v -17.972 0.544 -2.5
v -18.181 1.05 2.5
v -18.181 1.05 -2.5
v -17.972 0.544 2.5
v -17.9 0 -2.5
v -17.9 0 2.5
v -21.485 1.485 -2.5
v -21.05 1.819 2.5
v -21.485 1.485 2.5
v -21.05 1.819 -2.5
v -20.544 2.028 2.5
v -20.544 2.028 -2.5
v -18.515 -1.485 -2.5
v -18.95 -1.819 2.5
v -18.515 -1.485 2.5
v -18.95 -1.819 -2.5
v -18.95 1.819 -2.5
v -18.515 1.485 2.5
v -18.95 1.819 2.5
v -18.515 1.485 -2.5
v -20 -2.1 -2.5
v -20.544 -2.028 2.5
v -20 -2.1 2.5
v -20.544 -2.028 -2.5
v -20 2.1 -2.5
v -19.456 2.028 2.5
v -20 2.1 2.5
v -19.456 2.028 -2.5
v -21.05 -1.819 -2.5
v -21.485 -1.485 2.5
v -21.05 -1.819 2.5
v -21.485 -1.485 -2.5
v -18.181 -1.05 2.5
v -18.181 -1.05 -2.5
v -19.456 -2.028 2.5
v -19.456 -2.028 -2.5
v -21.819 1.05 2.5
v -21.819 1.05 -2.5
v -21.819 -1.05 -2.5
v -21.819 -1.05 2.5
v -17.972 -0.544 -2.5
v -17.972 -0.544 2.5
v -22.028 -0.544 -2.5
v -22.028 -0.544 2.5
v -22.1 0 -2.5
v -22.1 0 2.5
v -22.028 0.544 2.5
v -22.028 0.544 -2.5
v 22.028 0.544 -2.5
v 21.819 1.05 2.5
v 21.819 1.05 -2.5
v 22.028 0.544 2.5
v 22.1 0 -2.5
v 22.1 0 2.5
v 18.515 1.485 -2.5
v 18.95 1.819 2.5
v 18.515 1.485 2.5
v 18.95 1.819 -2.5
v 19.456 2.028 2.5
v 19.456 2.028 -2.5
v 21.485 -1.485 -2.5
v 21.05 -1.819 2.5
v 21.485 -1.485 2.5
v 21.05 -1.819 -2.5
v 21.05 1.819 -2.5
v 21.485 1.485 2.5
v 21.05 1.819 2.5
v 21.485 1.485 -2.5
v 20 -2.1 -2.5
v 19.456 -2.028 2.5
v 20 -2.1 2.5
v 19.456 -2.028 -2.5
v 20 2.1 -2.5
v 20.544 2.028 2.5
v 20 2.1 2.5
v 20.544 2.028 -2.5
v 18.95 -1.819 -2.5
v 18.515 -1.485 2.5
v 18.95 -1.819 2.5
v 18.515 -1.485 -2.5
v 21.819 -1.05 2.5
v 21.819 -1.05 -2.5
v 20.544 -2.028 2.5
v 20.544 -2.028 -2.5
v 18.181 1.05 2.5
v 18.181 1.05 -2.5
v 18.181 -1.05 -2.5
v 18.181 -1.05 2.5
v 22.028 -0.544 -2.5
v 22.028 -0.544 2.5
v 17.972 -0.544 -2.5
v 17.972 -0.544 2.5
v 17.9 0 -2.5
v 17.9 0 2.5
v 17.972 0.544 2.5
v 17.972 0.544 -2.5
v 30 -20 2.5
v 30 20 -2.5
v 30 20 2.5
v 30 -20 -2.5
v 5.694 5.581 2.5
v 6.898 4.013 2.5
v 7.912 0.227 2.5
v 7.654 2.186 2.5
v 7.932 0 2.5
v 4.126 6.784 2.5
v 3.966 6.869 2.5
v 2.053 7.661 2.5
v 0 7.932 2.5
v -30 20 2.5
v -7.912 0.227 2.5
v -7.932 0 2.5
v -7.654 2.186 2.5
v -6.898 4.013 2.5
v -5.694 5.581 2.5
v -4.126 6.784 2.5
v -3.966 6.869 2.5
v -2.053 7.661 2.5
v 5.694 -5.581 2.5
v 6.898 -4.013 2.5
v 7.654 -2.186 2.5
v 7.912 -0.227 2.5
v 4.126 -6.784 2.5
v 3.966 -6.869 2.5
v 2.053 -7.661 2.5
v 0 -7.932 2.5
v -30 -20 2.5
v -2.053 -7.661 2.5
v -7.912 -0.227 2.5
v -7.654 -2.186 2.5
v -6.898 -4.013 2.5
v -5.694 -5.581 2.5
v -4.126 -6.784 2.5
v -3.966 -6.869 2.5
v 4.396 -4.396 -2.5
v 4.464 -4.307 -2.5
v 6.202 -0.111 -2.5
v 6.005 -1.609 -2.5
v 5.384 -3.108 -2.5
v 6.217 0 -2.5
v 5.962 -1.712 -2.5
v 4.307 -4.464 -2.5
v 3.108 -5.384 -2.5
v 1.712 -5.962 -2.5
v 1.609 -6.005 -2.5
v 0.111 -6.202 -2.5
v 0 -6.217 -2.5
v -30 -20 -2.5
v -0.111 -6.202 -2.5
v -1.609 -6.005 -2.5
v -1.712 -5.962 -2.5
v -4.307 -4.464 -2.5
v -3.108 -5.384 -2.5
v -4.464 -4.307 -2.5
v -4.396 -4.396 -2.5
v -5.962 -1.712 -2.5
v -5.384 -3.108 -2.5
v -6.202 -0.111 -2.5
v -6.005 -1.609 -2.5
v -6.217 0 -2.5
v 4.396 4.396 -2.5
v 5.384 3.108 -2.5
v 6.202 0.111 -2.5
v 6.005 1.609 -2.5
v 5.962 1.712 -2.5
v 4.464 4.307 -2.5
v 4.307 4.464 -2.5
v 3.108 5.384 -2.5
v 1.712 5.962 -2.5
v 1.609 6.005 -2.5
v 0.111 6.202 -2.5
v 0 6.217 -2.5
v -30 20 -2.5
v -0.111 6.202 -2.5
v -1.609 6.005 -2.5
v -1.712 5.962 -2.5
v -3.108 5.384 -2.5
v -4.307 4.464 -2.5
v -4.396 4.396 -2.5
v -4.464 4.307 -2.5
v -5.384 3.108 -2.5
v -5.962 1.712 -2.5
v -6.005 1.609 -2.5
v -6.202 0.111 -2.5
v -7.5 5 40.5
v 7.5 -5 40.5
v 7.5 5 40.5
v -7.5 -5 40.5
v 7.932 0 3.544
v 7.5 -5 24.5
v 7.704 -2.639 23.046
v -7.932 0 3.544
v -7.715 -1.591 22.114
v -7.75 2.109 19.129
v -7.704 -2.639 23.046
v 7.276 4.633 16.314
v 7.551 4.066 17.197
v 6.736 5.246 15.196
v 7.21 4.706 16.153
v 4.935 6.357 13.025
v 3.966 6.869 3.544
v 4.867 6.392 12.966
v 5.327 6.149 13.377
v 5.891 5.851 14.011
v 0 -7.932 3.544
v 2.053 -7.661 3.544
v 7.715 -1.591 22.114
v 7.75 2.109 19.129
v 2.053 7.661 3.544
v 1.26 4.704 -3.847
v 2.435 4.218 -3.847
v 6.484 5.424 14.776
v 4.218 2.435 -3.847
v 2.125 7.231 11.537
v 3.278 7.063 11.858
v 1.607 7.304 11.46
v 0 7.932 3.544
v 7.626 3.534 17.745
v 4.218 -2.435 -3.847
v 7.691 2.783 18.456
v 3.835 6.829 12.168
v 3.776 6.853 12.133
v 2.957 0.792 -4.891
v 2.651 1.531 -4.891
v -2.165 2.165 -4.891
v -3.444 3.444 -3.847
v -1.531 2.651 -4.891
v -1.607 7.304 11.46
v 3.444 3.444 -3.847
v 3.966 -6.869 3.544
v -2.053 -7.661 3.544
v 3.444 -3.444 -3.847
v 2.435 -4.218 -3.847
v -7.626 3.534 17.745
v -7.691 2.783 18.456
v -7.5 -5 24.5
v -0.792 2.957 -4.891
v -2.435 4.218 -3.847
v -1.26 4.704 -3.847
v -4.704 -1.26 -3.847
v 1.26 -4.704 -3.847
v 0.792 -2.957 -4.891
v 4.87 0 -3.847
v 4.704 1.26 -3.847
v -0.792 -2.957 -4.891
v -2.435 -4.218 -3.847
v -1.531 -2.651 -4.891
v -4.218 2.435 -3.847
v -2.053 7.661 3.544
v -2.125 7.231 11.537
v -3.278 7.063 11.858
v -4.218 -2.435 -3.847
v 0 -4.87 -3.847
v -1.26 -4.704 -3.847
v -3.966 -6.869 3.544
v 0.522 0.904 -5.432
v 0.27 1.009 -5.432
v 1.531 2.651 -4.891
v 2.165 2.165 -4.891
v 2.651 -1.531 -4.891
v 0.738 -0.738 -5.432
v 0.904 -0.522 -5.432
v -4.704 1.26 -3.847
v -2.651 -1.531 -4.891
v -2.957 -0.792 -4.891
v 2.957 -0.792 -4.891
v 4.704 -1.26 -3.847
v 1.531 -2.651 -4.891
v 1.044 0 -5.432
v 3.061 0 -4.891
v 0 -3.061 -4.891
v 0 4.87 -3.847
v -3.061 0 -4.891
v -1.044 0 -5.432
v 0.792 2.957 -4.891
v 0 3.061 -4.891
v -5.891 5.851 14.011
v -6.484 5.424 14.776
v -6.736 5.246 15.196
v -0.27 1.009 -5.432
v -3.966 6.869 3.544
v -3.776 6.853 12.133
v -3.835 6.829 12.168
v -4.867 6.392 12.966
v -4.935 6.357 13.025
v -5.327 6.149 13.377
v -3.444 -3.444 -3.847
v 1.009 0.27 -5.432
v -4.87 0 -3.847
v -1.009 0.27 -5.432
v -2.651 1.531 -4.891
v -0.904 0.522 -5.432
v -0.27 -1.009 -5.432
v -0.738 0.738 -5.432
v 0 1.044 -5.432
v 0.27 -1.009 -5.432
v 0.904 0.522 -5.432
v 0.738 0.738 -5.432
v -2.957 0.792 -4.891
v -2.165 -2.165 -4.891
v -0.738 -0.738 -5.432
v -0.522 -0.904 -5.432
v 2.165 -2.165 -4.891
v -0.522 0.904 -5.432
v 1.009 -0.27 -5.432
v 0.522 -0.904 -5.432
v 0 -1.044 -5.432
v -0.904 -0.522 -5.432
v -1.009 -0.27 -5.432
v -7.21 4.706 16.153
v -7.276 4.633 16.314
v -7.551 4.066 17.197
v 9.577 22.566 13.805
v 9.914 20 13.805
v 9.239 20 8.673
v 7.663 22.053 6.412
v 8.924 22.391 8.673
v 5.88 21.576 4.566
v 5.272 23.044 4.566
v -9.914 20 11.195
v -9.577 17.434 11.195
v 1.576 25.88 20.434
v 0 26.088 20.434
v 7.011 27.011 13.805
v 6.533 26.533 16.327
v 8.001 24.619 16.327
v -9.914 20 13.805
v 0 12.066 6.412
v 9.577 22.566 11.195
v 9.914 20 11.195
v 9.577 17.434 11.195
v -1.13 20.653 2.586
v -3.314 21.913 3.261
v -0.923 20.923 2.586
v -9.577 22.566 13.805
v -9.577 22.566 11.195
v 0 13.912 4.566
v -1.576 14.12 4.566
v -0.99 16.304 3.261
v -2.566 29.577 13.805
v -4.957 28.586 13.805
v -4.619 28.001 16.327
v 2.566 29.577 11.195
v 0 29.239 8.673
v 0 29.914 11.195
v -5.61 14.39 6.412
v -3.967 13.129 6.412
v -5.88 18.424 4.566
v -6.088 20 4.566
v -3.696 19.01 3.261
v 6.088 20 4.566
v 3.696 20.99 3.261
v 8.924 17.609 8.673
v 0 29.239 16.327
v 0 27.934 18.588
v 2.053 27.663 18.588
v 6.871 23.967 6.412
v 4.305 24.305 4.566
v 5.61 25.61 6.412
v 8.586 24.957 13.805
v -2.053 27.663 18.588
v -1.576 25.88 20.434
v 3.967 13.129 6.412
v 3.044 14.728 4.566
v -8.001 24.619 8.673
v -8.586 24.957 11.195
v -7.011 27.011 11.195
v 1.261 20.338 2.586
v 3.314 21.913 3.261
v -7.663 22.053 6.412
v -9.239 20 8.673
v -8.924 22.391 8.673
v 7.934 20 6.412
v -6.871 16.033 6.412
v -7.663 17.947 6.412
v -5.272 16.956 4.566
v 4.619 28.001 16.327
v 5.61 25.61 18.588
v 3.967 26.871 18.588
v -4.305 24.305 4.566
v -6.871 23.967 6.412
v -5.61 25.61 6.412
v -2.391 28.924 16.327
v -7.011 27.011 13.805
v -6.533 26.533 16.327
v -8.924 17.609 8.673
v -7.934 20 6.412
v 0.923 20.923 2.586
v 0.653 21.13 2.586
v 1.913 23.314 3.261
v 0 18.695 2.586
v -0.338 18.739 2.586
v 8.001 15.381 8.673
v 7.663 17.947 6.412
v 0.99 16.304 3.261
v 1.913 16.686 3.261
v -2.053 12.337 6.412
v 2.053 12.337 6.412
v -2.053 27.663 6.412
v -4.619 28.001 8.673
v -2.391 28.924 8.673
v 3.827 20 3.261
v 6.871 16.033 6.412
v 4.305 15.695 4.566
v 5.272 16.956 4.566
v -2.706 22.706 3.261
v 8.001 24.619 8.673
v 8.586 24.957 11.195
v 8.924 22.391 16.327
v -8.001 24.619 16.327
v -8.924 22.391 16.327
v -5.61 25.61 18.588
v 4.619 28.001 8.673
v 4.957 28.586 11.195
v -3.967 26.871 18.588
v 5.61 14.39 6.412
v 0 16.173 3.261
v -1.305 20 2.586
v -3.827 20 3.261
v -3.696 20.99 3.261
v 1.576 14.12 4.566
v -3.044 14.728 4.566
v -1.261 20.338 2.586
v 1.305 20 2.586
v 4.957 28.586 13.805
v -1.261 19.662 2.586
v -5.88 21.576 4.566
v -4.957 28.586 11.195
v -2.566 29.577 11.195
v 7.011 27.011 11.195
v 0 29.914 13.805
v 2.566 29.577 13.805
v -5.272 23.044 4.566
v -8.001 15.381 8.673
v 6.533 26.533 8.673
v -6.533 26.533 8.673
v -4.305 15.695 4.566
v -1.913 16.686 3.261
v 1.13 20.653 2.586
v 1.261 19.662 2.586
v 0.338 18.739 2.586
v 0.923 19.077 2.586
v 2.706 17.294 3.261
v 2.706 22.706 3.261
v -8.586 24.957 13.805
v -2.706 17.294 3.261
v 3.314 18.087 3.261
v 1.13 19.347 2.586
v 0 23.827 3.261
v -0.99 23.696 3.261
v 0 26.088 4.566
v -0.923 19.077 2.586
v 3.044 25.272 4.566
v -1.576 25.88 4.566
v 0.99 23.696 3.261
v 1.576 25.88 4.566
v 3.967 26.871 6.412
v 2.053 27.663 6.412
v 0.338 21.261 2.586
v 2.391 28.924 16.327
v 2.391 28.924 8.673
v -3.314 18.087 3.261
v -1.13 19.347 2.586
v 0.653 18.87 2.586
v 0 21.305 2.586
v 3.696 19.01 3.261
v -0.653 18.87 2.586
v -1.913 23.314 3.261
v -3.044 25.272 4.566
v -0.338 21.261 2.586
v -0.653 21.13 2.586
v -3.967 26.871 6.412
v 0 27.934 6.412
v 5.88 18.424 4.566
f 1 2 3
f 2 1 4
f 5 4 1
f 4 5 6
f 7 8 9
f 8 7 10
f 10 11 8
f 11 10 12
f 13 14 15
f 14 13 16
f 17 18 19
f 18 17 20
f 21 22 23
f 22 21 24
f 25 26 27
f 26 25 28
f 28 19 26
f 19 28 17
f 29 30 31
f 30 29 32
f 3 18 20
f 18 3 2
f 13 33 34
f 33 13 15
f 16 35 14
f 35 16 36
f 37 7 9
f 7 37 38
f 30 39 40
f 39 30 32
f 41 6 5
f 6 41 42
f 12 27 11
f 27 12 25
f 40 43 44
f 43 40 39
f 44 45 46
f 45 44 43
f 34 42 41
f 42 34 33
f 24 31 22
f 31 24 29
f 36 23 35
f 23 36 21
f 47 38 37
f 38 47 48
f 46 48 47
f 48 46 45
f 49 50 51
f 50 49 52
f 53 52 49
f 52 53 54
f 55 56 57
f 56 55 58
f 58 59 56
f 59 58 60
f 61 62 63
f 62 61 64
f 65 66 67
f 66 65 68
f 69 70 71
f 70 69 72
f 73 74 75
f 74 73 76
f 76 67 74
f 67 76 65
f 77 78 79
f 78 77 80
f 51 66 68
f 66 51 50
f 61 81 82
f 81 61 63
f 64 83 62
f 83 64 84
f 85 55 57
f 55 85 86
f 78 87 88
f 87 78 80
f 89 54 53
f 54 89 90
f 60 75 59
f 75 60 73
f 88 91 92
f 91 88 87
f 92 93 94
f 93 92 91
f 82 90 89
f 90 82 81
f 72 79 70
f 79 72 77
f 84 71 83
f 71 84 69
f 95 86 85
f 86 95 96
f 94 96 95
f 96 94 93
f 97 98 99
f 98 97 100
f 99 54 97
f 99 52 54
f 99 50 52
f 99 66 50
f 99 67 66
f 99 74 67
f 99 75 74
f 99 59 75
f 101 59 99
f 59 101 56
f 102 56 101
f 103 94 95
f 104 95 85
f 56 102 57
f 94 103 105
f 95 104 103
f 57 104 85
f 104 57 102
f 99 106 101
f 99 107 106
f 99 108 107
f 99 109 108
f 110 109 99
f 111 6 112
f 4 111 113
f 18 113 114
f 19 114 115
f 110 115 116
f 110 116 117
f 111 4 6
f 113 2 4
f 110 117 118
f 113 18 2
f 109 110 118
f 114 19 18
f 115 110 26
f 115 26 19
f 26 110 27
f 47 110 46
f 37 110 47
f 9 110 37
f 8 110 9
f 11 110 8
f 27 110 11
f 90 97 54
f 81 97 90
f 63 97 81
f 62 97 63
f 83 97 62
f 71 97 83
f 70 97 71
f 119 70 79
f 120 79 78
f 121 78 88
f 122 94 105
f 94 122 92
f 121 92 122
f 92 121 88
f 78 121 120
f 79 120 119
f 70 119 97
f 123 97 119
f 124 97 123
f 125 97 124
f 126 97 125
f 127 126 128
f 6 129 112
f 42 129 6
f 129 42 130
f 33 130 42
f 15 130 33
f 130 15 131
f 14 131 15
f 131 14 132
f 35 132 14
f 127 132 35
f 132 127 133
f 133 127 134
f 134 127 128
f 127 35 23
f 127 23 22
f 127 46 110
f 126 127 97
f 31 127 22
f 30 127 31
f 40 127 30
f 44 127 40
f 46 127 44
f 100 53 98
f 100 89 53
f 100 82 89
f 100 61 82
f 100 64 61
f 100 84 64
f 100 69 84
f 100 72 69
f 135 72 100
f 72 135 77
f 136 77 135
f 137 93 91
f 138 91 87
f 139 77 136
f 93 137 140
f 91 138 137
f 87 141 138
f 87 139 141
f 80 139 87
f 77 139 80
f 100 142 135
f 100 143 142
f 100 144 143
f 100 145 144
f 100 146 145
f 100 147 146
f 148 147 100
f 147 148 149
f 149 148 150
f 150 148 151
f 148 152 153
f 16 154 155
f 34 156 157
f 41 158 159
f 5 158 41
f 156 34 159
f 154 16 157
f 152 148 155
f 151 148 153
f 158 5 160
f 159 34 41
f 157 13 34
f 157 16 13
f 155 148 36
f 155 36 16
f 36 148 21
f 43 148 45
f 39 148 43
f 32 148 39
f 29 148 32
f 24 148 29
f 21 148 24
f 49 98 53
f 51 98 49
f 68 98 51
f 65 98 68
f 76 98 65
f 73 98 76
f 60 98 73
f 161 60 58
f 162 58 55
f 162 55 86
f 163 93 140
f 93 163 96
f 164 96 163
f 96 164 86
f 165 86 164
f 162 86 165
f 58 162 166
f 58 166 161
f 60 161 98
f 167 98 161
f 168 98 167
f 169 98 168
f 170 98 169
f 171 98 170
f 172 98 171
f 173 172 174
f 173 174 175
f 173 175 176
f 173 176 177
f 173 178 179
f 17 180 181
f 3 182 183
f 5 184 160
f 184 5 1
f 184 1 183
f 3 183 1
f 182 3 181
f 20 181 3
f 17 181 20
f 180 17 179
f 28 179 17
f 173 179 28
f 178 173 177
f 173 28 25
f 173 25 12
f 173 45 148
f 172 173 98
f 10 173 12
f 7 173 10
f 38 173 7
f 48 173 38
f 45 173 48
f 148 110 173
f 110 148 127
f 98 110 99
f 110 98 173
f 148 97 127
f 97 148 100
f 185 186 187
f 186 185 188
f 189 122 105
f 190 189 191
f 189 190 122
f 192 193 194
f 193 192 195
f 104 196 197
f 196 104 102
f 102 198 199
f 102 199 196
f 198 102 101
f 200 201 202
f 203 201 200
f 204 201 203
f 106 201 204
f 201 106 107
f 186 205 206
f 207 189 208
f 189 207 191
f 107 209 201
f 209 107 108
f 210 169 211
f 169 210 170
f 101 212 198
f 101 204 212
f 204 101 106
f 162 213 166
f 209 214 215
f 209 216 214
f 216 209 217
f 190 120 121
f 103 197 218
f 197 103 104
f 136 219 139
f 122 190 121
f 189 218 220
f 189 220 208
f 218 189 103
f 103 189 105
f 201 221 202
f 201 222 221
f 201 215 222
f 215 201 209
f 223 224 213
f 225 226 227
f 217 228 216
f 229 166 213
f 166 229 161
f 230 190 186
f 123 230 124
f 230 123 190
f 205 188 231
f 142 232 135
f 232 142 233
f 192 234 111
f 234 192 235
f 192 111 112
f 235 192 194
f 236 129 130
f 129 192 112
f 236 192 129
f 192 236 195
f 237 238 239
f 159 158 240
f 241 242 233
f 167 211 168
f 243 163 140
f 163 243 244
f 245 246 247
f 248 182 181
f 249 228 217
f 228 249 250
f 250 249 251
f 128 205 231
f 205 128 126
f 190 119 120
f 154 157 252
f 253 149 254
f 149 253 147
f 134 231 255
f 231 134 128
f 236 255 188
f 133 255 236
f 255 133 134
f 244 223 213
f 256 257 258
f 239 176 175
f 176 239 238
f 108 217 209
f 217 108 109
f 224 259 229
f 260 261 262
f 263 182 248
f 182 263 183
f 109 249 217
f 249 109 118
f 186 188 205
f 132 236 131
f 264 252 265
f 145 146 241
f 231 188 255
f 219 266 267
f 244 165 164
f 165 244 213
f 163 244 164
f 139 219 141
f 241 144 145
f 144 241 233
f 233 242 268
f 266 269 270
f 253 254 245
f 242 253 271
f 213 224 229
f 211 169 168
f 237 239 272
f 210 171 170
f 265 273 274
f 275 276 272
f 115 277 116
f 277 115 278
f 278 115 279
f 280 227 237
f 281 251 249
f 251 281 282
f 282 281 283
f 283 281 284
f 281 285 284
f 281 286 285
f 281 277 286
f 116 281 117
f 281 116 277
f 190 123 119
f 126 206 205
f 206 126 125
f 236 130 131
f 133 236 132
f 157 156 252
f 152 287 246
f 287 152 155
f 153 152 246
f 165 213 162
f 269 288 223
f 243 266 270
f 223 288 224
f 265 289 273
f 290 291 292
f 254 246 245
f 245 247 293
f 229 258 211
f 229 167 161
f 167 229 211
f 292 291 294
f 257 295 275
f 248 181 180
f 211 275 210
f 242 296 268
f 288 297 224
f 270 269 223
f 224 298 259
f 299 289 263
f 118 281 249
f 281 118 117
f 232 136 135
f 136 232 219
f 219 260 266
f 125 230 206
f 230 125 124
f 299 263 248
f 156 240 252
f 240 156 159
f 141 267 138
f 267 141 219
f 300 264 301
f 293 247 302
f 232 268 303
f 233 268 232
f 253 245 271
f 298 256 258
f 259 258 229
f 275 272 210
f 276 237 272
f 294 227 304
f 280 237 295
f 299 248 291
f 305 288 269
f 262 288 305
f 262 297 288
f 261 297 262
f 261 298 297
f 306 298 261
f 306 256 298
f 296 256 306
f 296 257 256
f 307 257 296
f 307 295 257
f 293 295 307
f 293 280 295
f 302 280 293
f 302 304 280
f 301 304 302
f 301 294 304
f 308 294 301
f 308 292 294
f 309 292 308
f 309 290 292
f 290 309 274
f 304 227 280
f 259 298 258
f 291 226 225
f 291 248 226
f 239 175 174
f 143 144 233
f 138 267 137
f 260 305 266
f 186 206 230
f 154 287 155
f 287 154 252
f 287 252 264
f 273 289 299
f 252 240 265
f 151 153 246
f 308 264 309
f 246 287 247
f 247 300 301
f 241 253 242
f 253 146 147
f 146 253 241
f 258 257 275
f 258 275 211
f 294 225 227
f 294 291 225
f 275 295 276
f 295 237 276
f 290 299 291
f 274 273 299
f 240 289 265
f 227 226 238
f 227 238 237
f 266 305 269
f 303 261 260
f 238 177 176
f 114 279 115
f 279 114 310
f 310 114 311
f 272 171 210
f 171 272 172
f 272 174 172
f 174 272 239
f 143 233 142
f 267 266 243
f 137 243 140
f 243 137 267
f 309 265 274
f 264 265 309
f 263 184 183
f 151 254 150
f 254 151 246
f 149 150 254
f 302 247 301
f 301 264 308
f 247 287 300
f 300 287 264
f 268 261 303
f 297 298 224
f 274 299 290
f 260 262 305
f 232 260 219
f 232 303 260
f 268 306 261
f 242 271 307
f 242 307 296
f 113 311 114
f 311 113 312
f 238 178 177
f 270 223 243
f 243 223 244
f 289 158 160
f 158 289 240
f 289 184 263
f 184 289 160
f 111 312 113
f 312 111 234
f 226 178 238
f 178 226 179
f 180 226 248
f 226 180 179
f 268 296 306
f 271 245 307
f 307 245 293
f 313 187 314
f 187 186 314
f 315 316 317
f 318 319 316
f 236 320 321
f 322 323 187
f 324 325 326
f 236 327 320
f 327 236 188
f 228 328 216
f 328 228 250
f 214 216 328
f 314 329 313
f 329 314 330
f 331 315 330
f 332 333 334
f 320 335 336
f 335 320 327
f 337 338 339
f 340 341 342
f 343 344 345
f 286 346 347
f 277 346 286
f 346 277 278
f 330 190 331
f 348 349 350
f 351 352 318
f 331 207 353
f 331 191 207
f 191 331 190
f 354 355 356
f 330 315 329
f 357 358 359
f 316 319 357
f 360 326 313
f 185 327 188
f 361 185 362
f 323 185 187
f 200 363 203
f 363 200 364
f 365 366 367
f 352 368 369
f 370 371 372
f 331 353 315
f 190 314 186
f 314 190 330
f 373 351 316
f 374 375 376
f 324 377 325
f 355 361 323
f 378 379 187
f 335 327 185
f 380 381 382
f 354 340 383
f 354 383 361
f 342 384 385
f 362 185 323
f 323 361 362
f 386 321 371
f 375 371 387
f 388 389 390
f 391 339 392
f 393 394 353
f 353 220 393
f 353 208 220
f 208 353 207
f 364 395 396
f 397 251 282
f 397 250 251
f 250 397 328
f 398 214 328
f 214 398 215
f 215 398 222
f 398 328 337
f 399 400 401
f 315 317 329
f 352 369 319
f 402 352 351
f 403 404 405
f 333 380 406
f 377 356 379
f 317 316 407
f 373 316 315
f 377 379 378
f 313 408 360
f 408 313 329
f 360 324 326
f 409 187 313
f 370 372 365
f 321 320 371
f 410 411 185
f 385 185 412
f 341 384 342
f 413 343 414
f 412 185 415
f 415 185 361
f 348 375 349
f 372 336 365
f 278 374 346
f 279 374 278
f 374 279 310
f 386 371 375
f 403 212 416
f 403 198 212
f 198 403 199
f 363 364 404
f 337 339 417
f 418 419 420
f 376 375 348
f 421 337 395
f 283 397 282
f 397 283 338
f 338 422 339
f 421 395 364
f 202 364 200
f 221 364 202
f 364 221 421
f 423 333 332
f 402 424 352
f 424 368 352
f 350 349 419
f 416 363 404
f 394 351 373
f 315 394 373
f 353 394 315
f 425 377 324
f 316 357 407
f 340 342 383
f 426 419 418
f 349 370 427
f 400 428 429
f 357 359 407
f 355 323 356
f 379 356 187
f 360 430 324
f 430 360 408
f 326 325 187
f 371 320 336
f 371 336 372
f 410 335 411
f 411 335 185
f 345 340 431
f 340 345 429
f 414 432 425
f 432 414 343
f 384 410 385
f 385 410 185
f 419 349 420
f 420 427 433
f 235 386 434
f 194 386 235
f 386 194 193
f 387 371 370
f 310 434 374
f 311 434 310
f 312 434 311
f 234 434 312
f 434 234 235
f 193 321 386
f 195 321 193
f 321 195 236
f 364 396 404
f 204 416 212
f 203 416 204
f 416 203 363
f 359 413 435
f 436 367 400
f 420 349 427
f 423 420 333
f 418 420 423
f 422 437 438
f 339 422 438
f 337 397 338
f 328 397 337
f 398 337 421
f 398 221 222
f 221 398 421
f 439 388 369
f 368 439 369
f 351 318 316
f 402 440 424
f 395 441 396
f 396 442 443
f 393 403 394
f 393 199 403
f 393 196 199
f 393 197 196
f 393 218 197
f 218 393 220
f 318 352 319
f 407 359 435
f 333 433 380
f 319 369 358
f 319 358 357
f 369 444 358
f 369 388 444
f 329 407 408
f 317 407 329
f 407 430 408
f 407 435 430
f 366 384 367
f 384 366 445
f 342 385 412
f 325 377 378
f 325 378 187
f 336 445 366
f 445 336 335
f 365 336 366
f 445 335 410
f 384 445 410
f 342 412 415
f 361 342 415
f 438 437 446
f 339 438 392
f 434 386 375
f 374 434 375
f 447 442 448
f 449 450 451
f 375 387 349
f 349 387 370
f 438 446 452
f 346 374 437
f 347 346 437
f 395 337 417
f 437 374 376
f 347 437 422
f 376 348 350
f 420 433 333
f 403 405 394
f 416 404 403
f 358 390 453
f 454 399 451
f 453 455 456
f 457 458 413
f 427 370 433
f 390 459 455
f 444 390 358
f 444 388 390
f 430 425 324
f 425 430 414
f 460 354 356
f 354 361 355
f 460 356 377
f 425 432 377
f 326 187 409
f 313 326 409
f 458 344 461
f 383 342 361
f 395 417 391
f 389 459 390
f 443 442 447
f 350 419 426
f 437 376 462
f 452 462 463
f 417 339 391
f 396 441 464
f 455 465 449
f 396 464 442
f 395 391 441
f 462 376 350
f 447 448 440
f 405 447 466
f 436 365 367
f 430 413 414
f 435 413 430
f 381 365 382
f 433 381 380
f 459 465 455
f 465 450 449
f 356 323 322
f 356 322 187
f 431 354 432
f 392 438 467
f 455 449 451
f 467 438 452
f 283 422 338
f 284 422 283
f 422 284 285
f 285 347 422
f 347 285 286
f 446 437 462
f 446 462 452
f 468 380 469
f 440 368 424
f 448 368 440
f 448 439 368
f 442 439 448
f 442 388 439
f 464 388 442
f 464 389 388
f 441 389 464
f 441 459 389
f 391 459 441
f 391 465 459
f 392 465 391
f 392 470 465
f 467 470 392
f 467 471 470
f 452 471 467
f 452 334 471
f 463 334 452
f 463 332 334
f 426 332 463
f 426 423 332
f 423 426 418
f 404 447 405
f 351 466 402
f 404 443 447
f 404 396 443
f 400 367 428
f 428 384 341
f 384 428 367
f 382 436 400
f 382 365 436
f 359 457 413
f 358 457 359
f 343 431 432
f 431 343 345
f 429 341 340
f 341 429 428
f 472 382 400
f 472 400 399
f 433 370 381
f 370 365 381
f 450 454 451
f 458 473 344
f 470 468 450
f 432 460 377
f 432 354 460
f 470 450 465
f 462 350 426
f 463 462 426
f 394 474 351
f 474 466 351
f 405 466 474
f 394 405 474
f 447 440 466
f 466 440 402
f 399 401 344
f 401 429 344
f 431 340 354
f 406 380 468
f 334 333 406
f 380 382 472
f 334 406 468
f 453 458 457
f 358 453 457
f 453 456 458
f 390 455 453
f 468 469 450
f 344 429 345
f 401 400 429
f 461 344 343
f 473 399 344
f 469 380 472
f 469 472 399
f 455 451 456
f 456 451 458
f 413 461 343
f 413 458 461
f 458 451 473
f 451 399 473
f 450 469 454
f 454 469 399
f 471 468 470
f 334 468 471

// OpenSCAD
// Global parameters for OpenSCAD rendering
$fn = 24;

// --- Hook Dimensions ---
// Base Plate Dimensions (X, Y, Z)
base_width = 60;  // X-axis dimension (along the wall)
base_height = 40; // Y-axis dimension (up/down the wall)
base_thickness = 5; // Z-axis dimension (protruding from the wall). Must be >= 2mm.

// Arm Dimensions
arm_projection_straight = 30; // Length of the straight part of the arm (along Z)
arm_cross_section_width = 15; // Width of the arm (along X). Must be >= 2mm.
arm_cross_section_depth = 10; // Depth/thickness of the arm (along Y). Must be >= 2mm.

// Hook Curve Details
hook_tip_length = 20;  // Length of the final upward pointing tip (along Y)
hook_tip_radius = 5;   // Radius for rounding the very tip of the hook

// Screw Hole Parameters
screw_hole_diameter = 4.2; // For M4 screws (e.g., 4.0mm screw + 0.2mm tolerance)
screw_hole_offset_x = 20;  // Distance from center along X for screw holes
screw_hole_offset_y = 0;   // No offset along Y if only 2 holes centered on Y axis

// Fillet and Rounding Parameters
base_arm_transition_radius = 8; // Fillet radius for the connection between base and arm

// --- Main Hook Assembly ---
// Centered at (0,0,0): The geometric center of the base plate is at (0,0,0).
// The hook arm extends from the front face of the base.
union() {
    // Wall Plate - centered at (0,0,0)
    difference() {
        // Main base plate body
        cube([base_width, base_height, base_thickness], center = true);

        // Screw holes - positioned in the middle of the base plate in Z
        for (pos = [-1, 1]) {
            translate([pos * screw_hole_offset_x, screw_hole_offset_y, 0]) {
                cylinder(h = base_thickness + 1, d = screw_hole_diameter, center = true);
            }
        }
    }

    // Hook Arm - constructed using a series of hulls for robustness and smooth transitions
    // This design creates a strong, solid 'J' shape for the hook.

    // Part 1: Hull between the base plate and the start of the straight arm section
    // This creates a smooth, strong fillet at the base of the hook.
    hull() {
        // Sphere representing the connection point at the base, creating a rounded joint
        translate([0, 0, base_thickness / 2])
            sphere(r = base_arm_transition_radius);

        // Cube representing the end of the straight section of the arm
        // This cube defines the cross-section and extends the arm forward.
        translate([0, 0, base_thickness / 2 + arm_projection_straight])
            cube([arm_cross_section_width, arm_cross_section_depth, base_arm_transition_radius * 2], center = true);
    }

    // Part 2: Hull for the curved part of the arm and the tip
    // This connects the straight part to the upward-curling tip.
    hull() {
        // Cube at the end of the straight section (repeated for hulling with the next shape)
        translate([0, 0, base_thickness / 2 + arm_projection_straight])
            cube([arm_cross_section_width, arm_cross_section_depth, base_arm_transition_radius * 2], center = true);

        // Sphere representing the tip of the hook, where it curls upwards.
        // Positioned with its center at the highest point of the curl.
        translate([0, hook_tip_length, base_thickness / 2 + arm_projection_straight - hook_tip_length])
            sphere(r = hook_tip_radius + arm_cross_section_depth / 2); // Sphere for a smooth, rounded tip
    }
}
